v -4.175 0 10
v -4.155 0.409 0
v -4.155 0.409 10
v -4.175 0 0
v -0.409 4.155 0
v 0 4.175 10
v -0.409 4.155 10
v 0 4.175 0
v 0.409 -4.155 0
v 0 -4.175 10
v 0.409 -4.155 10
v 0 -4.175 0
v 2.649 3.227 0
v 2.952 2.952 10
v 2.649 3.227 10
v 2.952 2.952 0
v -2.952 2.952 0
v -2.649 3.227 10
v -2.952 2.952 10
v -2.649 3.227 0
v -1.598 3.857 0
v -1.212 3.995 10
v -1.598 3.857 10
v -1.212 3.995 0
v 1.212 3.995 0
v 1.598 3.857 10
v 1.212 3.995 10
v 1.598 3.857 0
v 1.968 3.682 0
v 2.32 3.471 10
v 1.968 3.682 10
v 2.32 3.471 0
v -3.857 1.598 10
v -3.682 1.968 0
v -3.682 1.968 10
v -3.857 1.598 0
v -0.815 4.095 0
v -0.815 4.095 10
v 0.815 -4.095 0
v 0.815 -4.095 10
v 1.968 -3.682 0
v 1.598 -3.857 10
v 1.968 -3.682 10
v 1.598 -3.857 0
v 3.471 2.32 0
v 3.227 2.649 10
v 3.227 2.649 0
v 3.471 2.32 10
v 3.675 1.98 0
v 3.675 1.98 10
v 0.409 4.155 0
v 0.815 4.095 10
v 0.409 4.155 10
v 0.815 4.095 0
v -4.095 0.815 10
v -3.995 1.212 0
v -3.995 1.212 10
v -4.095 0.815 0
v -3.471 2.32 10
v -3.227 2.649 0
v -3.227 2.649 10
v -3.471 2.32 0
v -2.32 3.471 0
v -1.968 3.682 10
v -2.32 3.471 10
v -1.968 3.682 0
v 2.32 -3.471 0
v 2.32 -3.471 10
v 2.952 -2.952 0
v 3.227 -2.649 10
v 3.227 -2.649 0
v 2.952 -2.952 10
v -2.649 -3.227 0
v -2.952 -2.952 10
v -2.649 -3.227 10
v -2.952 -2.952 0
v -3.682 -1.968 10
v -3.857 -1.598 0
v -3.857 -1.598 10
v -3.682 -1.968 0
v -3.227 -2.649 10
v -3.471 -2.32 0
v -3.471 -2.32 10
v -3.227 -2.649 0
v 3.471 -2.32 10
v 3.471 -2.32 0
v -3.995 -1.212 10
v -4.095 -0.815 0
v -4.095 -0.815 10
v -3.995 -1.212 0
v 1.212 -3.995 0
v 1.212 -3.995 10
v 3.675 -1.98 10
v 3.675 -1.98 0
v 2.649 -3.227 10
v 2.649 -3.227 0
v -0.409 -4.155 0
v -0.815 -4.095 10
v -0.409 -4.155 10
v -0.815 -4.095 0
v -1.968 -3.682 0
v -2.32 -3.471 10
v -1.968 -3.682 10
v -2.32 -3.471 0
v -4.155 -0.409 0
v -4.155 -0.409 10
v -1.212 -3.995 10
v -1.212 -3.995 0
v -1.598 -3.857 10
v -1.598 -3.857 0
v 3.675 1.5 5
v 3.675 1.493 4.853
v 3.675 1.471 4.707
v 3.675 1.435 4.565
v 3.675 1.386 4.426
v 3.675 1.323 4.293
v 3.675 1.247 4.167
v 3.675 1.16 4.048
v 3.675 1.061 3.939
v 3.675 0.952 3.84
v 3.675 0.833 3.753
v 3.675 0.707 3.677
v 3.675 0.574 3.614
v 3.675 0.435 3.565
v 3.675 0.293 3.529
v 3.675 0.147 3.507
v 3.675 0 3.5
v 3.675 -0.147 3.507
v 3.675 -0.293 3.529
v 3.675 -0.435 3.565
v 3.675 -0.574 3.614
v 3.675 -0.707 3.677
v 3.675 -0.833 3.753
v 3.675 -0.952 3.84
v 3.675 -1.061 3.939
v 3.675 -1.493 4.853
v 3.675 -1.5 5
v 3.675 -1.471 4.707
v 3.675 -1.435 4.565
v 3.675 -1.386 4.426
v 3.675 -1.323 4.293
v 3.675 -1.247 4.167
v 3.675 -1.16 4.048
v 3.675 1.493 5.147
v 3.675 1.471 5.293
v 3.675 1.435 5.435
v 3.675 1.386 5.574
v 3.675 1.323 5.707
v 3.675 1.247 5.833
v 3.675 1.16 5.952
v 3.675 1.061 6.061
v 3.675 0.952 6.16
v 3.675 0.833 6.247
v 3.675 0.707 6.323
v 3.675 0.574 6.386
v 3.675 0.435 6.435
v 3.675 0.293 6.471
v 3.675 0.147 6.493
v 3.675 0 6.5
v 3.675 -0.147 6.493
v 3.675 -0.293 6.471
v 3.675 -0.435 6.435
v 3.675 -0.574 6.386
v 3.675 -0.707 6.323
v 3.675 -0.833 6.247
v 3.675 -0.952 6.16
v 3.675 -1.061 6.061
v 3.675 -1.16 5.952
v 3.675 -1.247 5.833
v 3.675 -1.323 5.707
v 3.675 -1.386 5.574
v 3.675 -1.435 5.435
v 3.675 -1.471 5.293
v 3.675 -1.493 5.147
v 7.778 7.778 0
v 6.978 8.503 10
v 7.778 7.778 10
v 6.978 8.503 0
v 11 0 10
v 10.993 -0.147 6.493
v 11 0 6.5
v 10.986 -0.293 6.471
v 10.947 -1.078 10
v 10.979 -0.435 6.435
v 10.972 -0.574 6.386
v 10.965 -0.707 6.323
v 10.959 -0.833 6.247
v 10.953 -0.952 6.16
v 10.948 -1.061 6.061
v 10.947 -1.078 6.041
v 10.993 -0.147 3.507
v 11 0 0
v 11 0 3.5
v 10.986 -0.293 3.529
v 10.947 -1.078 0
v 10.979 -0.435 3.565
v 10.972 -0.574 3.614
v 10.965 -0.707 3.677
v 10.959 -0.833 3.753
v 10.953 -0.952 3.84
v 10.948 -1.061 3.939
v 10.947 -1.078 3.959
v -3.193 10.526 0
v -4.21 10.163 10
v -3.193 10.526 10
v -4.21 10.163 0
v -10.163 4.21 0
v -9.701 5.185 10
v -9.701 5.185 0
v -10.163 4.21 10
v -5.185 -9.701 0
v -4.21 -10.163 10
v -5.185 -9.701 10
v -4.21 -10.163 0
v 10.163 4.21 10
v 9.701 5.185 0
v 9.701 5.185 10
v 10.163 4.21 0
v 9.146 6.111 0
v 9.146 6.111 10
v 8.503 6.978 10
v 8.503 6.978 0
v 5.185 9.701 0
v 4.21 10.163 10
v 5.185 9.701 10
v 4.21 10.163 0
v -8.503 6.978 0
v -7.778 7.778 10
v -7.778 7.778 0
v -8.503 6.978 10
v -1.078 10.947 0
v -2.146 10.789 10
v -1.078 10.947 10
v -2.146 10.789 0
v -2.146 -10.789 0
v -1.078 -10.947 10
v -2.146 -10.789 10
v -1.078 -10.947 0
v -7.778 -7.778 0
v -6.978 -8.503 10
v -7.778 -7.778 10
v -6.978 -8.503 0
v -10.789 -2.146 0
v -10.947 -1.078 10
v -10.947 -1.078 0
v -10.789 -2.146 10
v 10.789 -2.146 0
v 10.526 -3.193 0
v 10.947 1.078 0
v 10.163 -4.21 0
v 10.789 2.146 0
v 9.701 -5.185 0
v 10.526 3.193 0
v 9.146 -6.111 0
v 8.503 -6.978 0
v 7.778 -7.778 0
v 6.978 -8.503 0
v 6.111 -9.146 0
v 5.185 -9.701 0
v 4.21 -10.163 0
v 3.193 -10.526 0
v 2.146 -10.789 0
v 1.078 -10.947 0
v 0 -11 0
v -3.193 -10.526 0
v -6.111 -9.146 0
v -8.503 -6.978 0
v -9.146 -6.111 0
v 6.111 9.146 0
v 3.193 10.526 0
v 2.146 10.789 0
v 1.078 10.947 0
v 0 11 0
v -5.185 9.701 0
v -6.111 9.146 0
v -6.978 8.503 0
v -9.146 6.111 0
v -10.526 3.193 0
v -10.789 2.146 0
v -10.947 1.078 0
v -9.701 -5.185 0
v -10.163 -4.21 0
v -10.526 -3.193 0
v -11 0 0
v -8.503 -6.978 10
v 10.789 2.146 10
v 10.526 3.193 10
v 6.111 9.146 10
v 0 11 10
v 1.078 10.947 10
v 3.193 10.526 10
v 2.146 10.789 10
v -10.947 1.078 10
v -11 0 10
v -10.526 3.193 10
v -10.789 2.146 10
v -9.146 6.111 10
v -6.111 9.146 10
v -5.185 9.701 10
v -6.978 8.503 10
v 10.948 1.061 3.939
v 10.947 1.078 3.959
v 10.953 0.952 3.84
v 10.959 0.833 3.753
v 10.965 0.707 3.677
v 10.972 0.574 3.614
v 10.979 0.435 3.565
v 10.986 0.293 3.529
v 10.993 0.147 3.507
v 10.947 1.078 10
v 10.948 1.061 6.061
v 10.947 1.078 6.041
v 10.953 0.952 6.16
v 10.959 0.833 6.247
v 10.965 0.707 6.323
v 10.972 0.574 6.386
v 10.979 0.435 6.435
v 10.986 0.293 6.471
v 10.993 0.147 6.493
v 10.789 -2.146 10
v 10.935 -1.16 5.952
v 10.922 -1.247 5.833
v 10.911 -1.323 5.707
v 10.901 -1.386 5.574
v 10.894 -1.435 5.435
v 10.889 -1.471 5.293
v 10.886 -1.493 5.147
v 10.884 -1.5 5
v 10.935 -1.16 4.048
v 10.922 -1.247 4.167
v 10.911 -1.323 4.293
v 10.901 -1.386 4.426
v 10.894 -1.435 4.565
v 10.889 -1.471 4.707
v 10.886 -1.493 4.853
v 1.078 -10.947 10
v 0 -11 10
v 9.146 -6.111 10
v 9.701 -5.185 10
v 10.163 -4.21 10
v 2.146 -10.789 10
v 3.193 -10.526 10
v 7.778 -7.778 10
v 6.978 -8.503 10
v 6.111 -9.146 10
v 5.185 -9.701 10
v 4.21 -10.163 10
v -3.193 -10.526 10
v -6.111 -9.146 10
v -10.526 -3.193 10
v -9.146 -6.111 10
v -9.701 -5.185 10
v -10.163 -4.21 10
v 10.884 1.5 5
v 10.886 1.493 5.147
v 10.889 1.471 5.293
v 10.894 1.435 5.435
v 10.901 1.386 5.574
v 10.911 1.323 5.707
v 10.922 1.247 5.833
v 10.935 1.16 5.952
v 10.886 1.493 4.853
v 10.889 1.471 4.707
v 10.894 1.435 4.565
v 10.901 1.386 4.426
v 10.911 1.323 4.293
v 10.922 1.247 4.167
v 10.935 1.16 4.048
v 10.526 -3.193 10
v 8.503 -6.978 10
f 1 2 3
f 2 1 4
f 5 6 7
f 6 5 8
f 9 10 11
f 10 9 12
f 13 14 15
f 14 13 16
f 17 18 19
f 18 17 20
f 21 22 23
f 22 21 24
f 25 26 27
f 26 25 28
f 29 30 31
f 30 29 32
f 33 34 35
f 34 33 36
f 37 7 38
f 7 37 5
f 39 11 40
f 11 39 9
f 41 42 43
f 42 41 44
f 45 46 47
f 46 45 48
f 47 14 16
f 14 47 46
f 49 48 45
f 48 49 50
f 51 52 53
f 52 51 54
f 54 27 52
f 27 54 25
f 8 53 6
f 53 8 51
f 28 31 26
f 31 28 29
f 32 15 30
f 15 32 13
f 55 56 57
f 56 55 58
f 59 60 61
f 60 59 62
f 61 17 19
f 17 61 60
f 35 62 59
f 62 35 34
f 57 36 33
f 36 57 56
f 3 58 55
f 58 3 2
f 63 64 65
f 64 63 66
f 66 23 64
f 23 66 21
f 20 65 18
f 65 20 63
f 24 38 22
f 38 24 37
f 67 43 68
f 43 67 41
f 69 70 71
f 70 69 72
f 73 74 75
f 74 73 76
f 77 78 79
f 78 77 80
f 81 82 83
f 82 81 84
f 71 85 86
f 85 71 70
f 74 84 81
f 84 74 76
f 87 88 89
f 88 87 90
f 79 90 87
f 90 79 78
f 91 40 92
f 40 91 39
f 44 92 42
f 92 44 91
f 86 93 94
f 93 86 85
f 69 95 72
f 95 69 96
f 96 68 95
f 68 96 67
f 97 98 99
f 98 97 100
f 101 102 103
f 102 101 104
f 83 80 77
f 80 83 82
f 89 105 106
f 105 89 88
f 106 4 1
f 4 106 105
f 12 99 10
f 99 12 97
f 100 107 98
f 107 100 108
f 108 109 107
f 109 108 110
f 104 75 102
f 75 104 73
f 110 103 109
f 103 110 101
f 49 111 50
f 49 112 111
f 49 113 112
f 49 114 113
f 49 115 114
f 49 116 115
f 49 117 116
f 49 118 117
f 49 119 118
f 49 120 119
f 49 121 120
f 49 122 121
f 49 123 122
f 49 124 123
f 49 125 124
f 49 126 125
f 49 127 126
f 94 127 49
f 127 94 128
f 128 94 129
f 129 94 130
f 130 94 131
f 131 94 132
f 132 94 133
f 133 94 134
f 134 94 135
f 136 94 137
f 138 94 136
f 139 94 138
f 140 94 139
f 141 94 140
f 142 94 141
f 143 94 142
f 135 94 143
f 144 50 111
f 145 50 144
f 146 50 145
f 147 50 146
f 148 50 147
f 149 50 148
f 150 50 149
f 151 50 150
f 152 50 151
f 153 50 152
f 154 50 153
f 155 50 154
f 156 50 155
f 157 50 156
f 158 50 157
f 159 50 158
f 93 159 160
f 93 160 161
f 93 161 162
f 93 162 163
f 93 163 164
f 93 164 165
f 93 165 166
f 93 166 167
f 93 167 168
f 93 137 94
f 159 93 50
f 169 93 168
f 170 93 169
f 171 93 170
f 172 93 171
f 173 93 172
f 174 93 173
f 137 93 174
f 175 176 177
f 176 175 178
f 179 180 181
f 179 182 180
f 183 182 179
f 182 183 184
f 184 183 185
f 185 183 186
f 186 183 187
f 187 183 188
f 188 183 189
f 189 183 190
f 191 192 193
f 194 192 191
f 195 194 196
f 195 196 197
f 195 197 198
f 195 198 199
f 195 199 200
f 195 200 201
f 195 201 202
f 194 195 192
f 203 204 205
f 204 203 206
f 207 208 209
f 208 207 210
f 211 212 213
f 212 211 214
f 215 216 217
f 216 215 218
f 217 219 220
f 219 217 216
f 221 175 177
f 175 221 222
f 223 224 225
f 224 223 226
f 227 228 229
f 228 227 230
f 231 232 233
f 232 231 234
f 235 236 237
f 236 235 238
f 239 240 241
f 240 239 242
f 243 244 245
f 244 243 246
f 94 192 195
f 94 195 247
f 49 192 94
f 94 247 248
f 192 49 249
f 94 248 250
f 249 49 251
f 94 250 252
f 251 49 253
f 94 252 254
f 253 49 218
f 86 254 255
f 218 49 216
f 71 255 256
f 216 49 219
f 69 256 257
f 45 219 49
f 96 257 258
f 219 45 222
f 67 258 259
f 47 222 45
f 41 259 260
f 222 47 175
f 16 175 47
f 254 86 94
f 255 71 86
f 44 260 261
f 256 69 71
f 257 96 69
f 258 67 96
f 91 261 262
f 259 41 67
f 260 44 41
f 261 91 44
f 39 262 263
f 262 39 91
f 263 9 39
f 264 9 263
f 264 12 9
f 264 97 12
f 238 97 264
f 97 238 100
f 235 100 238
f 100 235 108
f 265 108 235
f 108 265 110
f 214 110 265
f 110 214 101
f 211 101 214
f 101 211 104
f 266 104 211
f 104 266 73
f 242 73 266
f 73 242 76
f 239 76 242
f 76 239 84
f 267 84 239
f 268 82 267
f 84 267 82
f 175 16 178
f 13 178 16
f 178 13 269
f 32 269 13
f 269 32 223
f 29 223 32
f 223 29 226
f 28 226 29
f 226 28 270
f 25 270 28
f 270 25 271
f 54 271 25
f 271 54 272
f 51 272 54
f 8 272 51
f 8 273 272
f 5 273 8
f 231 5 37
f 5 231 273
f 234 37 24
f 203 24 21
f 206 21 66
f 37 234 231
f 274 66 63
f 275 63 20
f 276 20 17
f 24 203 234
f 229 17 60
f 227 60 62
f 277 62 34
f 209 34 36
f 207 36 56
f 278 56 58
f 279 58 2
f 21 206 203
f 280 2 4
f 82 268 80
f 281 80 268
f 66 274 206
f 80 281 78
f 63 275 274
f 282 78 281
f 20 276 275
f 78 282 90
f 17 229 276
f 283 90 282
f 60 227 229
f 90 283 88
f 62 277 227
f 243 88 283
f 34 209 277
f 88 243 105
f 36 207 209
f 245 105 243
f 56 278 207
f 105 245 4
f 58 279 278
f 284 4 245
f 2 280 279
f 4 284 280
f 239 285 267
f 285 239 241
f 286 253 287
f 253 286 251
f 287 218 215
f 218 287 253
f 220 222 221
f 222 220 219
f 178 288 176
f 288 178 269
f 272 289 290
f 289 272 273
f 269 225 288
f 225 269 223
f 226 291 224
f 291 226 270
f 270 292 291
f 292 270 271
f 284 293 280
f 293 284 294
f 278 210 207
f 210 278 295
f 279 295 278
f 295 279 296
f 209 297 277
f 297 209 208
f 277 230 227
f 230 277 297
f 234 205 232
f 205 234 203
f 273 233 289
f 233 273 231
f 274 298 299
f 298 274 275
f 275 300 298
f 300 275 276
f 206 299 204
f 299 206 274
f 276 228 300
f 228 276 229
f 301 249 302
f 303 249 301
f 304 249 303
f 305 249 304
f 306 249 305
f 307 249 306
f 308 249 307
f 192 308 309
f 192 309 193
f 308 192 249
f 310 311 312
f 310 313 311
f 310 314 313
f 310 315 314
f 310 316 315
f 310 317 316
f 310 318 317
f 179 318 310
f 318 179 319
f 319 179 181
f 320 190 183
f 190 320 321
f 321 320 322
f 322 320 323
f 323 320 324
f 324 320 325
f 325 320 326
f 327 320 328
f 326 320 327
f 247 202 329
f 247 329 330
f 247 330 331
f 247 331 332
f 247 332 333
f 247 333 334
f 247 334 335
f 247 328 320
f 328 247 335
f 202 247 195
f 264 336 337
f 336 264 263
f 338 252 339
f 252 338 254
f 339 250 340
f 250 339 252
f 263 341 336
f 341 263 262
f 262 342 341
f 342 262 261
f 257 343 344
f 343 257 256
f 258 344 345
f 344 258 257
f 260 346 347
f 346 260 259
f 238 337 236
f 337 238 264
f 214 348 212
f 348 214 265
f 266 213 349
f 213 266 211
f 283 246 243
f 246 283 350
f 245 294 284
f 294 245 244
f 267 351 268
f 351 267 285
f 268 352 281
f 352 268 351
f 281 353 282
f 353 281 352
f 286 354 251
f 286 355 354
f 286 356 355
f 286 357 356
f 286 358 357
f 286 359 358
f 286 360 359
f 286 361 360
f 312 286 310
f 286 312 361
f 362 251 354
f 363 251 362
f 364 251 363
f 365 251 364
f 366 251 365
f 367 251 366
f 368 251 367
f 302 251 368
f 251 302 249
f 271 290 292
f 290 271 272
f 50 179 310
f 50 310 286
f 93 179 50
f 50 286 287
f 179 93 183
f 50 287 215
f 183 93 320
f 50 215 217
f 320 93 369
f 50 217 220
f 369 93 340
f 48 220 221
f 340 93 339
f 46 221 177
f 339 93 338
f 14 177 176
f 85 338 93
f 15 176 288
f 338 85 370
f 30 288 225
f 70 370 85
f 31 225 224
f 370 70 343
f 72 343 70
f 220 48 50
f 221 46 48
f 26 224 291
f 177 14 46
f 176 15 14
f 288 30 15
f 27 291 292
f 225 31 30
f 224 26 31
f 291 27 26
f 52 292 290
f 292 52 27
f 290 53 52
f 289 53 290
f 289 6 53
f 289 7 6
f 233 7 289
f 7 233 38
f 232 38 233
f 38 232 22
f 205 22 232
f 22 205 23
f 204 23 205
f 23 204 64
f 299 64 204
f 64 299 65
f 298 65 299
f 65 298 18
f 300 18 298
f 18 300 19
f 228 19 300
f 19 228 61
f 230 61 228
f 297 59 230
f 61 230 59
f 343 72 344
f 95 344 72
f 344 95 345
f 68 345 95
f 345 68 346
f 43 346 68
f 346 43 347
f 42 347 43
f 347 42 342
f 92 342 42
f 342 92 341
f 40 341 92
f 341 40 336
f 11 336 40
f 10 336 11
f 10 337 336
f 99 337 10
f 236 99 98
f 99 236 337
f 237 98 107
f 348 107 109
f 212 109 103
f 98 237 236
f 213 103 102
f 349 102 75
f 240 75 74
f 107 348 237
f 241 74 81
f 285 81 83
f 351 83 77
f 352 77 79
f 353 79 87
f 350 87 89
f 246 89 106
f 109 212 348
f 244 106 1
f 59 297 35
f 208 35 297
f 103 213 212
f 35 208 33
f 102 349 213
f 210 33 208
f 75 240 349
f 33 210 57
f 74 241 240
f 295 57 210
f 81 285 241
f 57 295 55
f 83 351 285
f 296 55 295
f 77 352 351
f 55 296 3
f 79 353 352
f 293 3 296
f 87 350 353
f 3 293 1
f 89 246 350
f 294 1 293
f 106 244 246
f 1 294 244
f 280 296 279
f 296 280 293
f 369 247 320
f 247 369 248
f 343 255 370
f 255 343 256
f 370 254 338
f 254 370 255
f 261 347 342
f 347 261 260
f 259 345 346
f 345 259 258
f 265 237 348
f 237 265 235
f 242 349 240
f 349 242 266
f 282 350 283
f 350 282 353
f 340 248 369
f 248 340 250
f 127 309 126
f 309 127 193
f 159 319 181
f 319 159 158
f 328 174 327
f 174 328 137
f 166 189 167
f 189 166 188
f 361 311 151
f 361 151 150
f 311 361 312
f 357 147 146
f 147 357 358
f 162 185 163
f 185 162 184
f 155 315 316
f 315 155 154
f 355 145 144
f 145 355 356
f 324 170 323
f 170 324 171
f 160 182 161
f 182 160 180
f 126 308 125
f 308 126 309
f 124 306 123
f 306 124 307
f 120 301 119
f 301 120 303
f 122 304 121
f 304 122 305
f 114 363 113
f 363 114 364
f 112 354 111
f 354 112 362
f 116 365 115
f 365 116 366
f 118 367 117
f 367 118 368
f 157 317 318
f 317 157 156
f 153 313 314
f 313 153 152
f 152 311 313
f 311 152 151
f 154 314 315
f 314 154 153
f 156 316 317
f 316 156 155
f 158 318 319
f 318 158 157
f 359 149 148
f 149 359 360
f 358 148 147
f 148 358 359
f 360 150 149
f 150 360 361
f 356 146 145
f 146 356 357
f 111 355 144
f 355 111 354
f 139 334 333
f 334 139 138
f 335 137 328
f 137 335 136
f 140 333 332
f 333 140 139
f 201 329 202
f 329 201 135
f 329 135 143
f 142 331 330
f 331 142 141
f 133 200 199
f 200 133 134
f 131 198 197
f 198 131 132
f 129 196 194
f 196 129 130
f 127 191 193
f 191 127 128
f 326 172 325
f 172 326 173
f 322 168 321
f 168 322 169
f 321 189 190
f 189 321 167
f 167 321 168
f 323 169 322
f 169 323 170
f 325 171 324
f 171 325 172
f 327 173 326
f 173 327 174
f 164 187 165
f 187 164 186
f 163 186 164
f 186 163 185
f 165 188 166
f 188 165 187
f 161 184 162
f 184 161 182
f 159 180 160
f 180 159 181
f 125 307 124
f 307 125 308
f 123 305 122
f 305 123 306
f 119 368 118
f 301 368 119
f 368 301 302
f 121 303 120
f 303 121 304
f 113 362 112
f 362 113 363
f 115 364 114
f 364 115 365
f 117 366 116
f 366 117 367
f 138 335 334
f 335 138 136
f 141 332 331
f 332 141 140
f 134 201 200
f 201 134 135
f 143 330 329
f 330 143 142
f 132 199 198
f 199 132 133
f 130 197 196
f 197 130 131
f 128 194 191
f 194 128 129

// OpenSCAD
// Gen-CZ — shaft collar with D-flat bore (set screw bears on the flat); print x4
include <parameters.scad>;
$fn = 64;
// D-flat keyed bore: flat faces +X (angle 0 = magnet pocket 0 = index notch)
module dflat_bore(h) {
    intersection() {
        cylinder(d=shaft_bore, h=h);
        translate([-shaft_bore, -shaft_bore, 0]) cube([shaft_bore + dflat_x, 2*shaft_bore, h]);
    }
}

od = 22; h = collar_h; set_d = 3.0;
difference() {
    cylinder(d=od, h=h);
    translate([0, 0, -0.1]) dflat_bore(h + 0.2);
    translate([0, 0, h/2]) rotate([0, 90, 0]) cylinder(d=set_d, h=od);
}
